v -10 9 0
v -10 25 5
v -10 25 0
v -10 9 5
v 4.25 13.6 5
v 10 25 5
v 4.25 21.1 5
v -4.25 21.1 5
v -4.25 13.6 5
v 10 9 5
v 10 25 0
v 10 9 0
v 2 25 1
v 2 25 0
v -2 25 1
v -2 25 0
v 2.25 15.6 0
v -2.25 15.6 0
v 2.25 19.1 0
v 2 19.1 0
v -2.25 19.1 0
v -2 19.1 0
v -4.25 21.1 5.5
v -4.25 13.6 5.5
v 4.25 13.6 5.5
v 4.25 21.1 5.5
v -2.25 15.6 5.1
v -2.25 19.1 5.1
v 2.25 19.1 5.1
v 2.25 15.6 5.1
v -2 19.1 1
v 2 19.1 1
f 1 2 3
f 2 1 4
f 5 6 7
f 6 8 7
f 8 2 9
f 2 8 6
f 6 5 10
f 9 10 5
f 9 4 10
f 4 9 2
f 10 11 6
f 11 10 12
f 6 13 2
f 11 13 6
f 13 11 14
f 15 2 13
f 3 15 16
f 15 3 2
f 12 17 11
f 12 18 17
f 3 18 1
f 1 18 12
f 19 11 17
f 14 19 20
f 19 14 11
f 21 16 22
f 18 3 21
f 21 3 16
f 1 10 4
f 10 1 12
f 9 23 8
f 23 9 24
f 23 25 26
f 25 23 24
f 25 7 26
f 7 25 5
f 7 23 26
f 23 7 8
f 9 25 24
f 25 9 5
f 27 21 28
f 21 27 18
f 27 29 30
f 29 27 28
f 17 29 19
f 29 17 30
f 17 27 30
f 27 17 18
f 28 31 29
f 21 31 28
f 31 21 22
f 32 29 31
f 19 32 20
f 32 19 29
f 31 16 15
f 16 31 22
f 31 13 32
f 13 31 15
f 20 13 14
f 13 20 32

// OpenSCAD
// file: stack_options.scad
// =========================================================
// BRAILLIX COORDINATED STACK OPTIONS
//
// Default exports remain the audited legacy stack. Render the non-destructive
// shaft-preserving candidate with:
//
//   openscad -D stack_repair_raise=4 ...
//
// The 4 mm value is not arbitrary. With the motor mounting face at world z=41,
// the measured Ø9 x 2 mm collar ends at z=43. A 4 mm cam hub seated on that
// collar puts the cam underside at z=47 and its flat surface at z=49: exactly
// 4 mm above the legacy cam-flat datum. Base standoffs, top plate, cell shell,
// and pod therefore move together by the same amount.
//
// This is a candidate until the real cam/linkage/spring and Hall tests pass.
// =========================================================

stack_repair_raise = is_undef(stack_repair_raise) ? 0 : stack_repair_raise;

assert(stack_repair_raise == 0 || stack_repair_raise == 4,
       "stack_repair_raise must be 0 (legacy audit) or 4 (Option A candidate)");

stack_option_a = stack_repair_raise == 4;
// file: hall_interface.scad
// Shared bare-Hall geometry for the production base and its exact coupon.
// Keep every sensor/roof/gap value here so the physical test cannot drift.

include <mech_layout.scad>

hall_body_w  = 4.1;
hall_body_d  = 3.1;
hall_body_t  = 1.6;
hall_fit     = 0.4;
hall_floor_t = 0.4;
hall_air_gap = 0.5;
hall_wire_w  = 4;
hall_wire_d  = 1;

hall_pocket_x = homing_mag_r * cos(homing_mag_angle);
hall_pocket_y = homing_mag_r * sin(homing_mag_angle);

function hall_island_height(repair_raise, plate_thickness) =
    repair_raise == 4 ? (2 + repair_raise) - plate_thickness - hall_air_gap : 0;

function hall_pocket_height(repair_raise, plate_thickness) =
    plate_thickness + hall_island_height(repair_raise, plate_thickness) - hall_floor_t;

module hall_sensor_island(repair_raise, plate_thickness) {
    island_h = hall_island_height(repair_raise, plate_thickness);
    if (repair_raise == 4) {
        pw = hall_body_w + hall_fit + 4;
        pd = hall_body_d + hall_fit + 4;
        translate([hall_pocket_x - pw/2, hall_pocket_y - pd/2, plate_thickness - 0.1])
            cube([pw, pd, island_h + 0.1]);
    }
}

module hall_sensor_pocket(repair_raise, plate_thickness, plate_width) {
    pocket_h = hall_pocket_height(repair_raise, plate_thickness);
    pw = hall_body_w + hall_fit;
    pd = hall_body_d + hall_fit;
    translate([hall_pocket_x - pw/2, hall_pocket_y - pd/2, -0.1])
        cube([pw, pd, pocket_h + 0.1]);

    translate([hall_pocket_x - hall_wire_w/2, hall_pocket_y - pd/2, -0.1])
        cube([hall_wire_w,
              plate_width/2 - hall_pocket_y + pd/2 + 1,
              hall_wire_d + 0.1]);
}
// main file
/*
  Exact Option-A Hall-island section coupon

  This is cut directly from the production base_plate() module so the underside
  sensor tunnel, 0.4 mm roof, 0.7 mm island, wire channel, and print orientation
  cannot drift. Print flat in PETG with no supports. Fit the bare Hall body, route
  its three leads, and verify switching with the intended 3x1 mm magnet before
  releasing the full base.
*/

include <hall_interface.scad>

coupon_w = 20;
coupon_y0 = 9;
coupon_depth = 16;
plate_t = 5;

intersection() {
    difference() {
        union() {
            translate([-coupon_w/2, coupon_y0, 0])
                cube([coupon_w, coupon_depth, plate_t]);
            hall_sensor_island(4, plate_t);
        }
        hall_sensor_pocket(4, plate_t, 50);
    }
    translate([-coupon_w/2, coupon_y0, -0.01])
        cube([coupon_w, coupon_depth + 0.1, 6.01]);
}
